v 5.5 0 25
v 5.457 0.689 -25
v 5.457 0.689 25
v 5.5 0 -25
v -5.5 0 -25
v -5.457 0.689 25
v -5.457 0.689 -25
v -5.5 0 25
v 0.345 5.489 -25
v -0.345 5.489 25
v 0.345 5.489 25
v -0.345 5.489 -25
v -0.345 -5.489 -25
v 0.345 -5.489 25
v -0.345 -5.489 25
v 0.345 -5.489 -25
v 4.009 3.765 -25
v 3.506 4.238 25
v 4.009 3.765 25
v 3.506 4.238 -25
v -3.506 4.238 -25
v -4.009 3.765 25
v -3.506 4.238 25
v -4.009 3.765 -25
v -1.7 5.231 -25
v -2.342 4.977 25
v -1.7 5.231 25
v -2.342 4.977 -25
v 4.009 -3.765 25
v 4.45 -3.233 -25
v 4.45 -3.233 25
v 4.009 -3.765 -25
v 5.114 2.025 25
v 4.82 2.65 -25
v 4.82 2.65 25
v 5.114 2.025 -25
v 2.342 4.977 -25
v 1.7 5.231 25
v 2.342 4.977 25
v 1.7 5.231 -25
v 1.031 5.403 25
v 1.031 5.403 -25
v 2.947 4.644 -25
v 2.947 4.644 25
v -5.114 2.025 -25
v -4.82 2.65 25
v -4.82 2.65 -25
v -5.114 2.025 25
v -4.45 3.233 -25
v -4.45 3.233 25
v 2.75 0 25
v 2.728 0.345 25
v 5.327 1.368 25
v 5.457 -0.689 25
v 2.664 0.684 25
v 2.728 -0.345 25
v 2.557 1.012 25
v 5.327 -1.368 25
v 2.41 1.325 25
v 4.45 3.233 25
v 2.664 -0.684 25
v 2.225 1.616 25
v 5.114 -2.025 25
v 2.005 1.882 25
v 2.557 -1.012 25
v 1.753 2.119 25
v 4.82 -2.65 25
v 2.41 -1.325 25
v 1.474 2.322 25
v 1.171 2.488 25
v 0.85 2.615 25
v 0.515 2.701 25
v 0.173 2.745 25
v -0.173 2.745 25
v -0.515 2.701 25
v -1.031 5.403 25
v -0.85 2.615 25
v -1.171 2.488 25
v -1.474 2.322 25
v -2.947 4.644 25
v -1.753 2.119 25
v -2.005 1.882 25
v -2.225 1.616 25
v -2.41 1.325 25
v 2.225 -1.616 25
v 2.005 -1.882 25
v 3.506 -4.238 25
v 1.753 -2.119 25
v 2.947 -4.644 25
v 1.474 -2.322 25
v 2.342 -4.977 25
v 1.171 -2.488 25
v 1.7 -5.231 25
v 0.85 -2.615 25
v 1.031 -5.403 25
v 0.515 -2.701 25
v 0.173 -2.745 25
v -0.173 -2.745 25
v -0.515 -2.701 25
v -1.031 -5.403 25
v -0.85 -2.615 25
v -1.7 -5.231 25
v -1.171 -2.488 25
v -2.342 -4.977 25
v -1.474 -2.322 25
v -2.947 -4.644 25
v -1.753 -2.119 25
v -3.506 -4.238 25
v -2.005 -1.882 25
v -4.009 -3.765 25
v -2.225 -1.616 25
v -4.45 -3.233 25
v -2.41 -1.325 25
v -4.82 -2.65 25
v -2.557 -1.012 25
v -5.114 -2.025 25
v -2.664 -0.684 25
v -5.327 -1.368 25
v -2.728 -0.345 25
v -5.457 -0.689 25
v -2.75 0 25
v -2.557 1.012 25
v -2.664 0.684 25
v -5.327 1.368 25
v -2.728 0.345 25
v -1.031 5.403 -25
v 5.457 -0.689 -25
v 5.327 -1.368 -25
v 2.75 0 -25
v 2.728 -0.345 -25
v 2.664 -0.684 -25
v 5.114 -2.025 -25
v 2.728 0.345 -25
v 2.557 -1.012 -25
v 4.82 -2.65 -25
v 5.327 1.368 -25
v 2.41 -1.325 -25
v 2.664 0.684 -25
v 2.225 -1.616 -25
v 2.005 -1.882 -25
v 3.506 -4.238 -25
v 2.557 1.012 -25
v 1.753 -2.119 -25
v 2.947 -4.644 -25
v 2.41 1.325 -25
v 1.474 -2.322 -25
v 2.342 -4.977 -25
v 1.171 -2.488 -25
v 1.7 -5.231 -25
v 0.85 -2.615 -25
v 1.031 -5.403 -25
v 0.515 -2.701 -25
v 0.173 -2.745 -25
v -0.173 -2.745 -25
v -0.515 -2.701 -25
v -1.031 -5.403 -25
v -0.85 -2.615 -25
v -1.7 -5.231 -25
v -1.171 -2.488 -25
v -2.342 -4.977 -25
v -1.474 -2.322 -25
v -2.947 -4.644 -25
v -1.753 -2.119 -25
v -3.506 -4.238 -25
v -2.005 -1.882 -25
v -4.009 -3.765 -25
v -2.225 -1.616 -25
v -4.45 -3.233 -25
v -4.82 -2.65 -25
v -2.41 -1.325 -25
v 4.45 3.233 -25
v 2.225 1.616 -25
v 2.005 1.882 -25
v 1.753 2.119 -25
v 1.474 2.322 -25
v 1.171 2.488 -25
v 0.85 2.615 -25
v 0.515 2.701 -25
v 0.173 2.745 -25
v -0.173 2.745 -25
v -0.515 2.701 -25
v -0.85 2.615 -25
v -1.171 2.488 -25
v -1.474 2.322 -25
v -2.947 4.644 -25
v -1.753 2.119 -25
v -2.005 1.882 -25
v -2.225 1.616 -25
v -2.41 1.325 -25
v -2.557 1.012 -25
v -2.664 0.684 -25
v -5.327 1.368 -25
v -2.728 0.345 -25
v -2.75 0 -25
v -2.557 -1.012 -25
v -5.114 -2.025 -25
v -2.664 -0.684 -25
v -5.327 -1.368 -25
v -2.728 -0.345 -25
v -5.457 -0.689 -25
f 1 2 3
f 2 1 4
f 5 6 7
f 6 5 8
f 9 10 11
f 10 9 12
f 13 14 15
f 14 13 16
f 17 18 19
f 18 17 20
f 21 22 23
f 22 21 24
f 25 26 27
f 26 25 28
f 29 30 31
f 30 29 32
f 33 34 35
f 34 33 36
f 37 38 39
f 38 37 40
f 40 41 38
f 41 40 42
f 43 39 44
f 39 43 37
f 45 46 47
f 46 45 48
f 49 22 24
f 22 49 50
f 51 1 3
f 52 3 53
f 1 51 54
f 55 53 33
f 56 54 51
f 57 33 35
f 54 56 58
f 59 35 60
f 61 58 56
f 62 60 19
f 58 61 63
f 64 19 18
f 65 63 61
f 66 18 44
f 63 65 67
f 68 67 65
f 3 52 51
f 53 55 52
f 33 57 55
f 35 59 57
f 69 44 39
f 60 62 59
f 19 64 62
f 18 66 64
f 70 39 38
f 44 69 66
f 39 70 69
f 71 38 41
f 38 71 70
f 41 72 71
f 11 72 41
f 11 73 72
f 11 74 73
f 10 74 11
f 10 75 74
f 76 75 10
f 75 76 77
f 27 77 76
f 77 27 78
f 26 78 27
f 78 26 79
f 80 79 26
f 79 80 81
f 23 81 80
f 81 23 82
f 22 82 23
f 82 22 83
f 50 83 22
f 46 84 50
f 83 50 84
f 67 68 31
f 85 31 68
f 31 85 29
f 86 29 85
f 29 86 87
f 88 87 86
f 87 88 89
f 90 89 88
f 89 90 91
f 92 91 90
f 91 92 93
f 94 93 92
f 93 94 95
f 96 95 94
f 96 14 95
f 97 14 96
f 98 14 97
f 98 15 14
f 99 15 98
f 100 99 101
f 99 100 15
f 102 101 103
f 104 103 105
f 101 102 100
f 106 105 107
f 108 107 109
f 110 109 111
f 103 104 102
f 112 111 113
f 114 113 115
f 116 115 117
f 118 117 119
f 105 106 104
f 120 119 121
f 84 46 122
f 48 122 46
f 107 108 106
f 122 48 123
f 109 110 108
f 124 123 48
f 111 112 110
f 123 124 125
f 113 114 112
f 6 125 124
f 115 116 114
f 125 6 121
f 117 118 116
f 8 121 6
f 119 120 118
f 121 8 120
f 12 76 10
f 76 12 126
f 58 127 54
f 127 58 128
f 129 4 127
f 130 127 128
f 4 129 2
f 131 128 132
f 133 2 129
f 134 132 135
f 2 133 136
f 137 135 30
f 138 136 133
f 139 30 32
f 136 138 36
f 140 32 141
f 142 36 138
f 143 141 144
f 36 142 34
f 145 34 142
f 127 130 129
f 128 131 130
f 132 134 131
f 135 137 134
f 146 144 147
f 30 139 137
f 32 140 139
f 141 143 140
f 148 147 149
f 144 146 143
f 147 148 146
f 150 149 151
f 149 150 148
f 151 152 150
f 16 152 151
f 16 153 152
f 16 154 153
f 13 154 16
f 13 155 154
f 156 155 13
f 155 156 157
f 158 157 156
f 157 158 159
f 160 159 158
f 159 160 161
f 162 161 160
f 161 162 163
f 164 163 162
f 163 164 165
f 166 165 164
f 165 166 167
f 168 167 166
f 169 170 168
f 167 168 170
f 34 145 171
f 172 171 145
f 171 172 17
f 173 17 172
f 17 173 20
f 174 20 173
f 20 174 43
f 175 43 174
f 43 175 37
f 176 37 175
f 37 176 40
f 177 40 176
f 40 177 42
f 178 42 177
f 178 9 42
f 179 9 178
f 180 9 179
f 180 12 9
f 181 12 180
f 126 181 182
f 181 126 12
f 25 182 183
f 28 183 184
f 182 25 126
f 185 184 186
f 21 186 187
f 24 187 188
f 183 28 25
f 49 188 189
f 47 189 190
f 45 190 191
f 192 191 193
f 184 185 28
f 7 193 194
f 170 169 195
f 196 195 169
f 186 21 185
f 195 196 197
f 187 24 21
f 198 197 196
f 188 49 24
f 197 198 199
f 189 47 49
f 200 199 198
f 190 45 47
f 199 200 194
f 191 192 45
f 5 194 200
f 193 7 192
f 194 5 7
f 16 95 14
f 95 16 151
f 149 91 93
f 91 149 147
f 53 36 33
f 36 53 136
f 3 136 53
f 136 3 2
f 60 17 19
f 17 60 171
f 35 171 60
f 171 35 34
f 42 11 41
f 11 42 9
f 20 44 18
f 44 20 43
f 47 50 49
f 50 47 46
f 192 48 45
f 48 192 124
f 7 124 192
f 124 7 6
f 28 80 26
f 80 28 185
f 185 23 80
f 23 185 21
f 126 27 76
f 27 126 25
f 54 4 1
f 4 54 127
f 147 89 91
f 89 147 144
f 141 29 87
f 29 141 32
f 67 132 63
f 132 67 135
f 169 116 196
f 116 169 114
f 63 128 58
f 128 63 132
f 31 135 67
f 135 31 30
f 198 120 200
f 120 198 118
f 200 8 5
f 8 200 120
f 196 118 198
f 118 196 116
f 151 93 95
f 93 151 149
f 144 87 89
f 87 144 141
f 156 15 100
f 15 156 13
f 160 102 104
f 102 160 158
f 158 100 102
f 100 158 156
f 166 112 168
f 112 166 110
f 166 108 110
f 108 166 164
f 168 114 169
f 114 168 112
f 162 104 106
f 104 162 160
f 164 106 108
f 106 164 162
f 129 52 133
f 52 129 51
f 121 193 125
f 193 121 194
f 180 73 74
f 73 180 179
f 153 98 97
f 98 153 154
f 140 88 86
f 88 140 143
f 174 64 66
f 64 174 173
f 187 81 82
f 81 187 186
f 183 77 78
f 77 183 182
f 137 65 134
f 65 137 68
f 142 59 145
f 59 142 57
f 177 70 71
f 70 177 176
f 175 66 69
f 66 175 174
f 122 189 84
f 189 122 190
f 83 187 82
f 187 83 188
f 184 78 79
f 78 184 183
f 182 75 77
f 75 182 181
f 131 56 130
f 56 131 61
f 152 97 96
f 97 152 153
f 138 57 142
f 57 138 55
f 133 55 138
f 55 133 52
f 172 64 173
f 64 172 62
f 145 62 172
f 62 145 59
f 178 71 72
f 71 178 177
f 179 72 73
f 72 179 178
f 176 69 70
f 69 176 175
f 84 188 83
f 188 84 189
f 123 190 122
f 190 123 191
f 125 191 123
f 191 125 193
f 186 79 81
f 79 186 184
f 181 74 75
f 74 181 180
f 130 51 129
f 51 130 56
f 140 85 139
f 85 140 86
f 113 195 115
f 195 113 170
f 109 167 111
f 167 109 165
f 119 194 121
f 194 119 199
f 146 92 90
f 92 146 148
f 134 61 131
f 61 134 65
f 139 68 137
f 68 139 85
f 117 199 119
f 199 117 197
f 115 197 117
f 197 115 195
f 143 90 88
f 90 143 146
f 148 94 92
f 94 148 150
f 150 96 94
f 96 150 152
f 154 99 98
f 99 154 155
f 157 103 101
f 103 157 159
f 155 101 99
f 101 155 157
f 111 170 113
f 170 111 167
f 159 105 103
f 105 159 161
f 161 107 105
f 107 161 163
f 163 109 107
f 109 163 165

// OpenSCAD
$fn = 50;


difference() {
	union() {
		translate(v = [0, 0, -25.0000000000]) {
			cylinder(h = 50, r = 5.5000000000);
		}
	}
	union() {
		translate(v = [0, 0, -100.0000000000]) {
			cylinder(h = 200, r = 2.7500000000);
		}
	}
}
